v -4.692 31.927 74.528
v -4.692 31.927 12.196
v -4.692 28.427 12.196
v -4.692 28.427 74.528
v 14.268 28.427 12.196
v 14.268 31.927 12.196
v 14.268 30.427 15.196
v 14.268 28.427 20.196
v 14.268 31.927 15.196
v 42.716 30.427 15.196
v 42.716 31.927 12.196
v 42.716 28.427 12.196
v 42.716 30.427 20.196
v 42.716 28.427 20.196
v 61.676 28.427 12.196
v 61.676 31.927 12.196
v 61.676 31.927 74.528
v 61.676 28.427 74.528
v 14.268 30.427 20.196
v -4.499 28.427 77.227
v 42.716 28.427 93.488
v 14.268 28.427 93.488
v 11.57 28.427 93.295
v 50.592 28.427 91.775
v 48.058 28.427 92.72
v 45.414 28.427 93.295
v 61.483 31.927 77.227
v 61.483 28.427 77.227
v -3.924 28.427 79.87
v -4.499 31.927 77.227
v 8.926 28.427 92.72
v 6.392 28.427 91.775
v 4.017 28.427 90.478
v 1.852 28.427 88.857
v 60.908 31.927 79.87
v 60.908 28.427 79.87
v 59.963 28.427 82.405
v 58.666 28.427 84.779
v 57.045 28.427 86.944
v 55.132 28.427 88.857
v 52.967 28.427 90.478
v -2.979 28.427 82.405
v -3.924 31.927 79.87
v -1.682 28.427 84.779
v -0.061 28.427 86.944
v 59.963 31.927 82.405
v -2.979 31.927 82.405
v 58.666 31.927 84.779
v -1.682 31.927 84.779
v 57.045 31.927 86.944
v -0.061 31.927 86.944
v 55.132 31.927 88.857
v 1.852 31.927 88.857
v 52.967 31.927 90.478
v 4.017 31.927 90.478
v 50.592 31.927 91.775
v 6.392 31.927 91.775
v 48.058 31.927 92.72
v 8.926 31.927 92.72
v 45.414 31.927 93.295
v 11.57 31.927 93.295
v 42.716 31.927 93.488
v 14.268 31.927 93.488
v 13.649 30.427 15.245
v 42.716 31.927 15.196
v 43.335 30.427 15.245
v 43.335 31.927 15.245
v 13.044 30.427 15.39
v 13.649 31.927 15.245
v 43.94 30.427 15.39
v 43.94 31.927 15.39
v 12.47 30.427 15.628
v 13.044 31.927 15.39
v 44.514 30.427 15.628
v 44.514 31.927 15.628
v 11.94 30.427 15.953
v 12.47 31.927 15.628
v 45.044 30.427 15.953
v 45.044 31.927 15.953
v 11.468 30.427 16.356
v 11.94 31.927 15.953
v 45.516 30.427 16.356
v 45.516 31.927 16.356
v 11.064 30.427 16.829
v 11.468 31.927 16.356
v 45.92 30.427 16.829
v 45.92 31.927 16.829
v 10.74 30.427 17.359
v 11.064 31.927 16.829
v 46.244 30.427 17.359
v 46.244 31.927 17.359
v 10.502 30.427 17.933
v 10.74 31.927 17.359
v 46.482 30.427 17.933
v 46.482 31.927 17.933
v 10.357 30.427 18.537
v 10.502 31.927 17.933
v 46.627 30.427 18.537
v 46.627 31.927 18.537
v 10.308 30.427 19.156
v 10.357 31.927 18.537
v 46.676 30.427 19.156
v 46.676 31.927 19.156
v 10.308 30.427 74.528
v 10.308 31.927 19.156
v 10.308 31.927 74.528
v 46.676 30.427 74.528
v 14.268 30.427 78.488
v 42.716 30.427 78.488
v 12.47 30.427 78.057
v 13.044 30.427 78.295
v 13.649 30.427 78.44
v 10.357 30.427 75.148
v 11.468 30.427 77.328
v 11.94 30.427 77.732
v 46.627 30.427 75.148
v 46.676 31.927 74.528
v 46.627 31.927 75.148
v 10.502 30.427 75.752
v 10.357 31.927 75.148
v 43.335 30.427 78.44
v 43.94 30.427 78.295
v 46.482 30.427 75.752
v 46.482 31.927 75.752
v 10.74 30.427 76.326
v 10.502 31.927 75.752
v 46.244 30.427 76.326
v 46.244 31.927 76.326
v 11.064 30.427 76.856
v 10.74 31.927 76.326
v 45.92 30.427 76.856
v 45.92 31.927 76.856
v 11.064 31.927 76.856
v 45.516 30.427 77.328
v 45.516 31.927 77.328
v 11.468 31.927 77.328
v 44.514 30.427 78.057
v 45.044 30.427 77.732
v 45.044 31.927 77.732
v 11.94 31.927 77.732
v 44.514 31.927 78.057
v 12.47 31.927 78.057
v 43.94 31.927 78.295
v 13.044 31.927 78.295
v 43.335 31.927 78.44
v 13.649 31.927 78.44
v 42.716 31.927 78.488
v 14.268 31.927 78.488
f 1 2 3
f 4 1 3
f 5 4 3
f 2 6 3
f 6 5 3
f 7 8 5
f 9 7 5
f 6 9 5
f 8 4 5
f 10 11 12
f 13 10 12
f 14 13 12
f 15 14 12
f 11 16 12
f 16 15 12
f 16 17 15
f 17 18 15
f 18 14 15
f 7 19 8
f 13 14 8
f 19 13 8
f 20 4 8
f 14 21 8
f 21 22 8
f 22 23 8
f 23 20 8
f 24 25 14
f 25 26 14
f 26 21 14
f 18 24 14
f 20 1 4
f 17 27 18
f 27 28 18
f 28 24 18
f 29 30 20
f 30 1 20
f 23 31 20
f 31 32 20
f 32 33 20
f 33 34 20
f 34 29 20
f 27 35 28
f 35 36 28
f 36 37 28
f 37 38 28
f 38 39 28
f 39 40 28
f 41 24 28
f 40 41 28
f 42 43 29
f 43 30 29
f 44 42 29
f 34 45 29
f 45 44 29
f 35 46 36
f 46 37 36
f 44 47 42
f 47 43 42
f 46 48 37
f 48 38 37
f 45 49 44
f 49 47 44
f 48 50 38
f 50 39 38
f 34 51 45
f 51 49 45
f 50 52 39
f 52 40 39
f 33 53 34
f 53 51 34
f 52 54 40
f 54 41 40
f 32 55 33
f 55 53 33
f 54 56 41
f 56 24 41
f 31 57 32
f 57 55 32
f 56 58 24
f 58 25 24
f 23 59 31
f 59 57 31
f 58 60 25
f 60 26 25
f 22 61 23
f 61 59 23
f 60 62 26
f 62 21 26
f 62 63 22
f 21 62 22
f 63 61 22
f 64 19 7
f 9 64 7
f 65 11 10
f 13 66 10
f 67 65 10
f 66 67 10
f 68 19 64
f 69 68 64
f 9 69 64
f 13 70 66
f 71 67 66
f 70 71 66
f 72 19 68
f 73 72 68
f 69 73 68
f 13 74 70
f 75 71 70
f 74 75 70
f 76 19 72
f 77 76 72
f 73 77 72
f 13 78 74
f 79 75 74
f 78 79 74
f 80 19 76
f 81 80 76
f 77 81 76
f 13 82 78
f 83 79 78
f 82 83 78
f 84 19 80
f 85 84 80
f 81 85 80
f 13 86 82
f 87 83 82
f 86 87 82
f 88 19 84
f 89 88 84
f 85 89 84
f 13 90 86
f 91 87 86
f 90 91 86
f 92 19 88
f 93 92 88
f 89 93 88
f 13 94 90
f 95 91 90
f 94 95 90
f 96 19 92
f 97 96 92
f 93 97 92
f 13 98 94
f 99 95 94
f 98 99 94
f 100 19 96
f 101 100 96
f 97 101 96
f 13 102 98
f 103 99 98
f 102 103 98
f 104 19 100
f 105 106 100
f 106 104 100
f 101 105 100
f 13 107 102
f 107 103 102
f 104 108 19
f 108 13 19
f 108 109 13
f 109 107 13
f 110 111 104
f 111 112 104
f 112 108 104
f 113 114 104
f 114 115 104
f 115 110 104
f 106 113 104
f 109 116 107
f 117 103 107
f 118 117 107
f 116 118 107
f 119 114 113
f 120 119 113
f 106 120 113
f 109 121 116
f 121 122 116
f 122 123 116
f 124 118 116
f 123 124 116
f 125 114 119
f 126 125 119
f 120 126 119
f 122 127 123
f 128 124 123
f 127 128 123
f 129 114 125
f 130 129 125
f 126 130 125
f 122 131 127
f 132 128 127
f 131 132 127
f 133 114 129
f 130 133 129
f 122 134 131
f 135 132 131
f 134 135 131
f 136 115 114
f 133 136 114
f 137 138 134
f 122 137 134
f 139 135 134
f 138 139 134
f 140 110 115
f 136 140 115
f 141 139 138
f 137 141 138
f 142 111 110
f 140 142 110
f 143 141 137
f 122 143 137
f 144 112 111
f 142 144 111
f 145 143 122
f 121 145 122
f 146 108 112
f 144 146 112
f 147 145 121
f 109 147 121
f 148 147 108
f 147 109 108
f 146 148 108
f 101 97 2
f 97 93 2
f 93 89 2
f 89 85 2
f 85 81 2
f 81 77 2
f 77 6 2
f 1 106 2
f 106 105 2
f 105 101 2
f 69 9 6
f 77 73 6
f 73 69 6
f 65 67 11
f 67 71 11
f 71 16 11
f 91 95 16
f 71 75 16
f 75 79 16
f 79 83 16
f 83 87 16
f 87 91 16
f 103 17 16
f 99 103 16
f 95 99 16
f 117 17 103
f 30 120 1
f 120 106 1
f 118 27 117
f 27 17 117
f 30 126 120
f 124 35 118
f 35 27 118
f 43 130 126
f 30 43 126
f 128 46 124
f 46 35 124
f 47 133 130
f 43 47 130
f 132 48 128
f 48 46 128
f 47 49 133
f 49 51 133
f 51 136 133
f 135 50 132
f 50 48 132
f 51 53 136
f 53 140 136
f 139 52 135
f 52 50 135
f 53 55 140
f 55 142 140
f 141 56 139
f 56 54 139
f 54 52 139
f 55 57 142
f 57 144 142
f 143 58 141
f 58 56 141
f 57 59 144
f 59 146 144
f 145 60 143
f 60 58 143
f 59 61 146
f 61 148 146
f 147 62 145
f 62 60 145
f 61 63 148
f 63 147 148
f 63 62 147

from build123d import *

# Parameters (mm, degrees)
BOSS_EXTRUDE1_DEPTH = 2
BOSS_EXTRUDE4_DEPTH = 1.5
SKETCH4_W           = 18.96
SKETCH4_H           = 3
BOSS_EXTRUDE5_DEPTH = 3.5


with BuildPart() as part:
    # Sketch1 → Boss-Extrude1 (new body)
    with BuildSketch(Plane.XZ.offset(-30.427346286)):
        with BuildLine():
            Line((61.676013052, 15.196320566), (61.676013052, 19.156320566))
            Line((61.676013052, 19.156320566), (61.676013052, 74.528320566))
            ThreePointArc((61.676013052, 74.528320566), (56.122757624, 87.935065137), (42.716013052, 93.488320566))
            Line((42.716013052, 93.488320566), (14.268013052, 93.488320566))
            ThreePointArc((14.268013052, 93.488320566), (0.861268481, 87.935065137), (-4.691986948, 74.528320566))
            Line((-4.691986948, 74.528320566), (-4.691986948, 19.156320566))
            Line((-4.691986948, 19.156320566), (-4.691986948, 15.196320566))
            Line((-4.691986948, 15.196320566), (-4.273831516, 15.196320566))
            Line((-4.273831516, 15.196320566), (14.268013052, 15.196320566))
            Line((14.268013052, 15.196320566), (14.268013052, 20.196320566))
            Line((14.268013052, 20.196320566), (42.716013052, 20.196320566))
            Line((42.716013052, 20.196320566), (42.716013052, 15.196320566))
            Line((42.716013052, 15.196320566), (61.257857621, 15.196320566))
            Line((61.257857621, 15.196320566), (61.676013052, 15.196320566))
        make_face()
    extrude(amount=BOSS_EXTRUDE1_DEPTH)

    # Sketch3 → Boss-Extrude4 (add)
    with BuildSketch(Plane(origin=(0, 30.427346286, 0), x_dir=(1, 0, 0), z_dir=(0, 1, 0))):
        with BuildLine():
            ThreePointArc((46.676013052, -19.156320566), (45.516155906, -16.356177712), (42.716013052, -15.196320566))
            Line((42.716013052, -15.196320566), (61.676013052, -15.196320566))
            Line((61.676013052, -15.196320566), (61.676013052, -74.528320566))
            ThreePointArc((61.676013052, -74.528320566), (56.122757624, -87.935065137), (42.716013052, -93.488320566))
            Line((42.716013052, -93.488320566), (14.268013052, -93.488320566))
            ThreePointArc((14.268013052, -93.488320566), (0.861268481, -87.935065137), (-4.691986948, -74.528320566))
            Line((-4.691986948, -74.528320566), (-4.691986948, -15.196320566))
            Line((-4.691986948, -15.196320566), (14.268013052, -15.196320566))
            ThreePointArc((14.268013052, -15.196320566), (11.467870199, -16.356177712), (10.308013052, -19.156320566))
            Line((10.308013052, -19.156320566), (10.308013052, -74.528320566))
            ThreePointArc((10.308013052, -74.528320566), (11.467870199, -77.328463419), (14.268013052, -78.488320566))
            Line((14.268013052, -78.488320566), (42.716013052, -78.488320566))
            ThreePointArc((42.716013052, -78.488320566), (45.516155906, -77.328463419), (46.676013052, -74.528320566))
            Line((46.676013052, -74.528320566), (46.676013052, -19.156320566))
        make_face()
    extrude(amount=BOSS_EXTRUDE4_DEPTH)

    # Sketch4 → Boss-Extrude5 (add)
    with BuildSketch(Plane.XZ.offset(-28.427346286)):
        with Locations((4.788013052, 13.696320566)):
            Rectangle(SKETCH4_W, SKETCH4_H)
        with Locations((52.196013052, 13.696320566)):
            Rectangle(SKETCH4_W, SKETCH4_H)
    extrude(amount=-BOSS_EXTRUDE5_DEPTH)


solid = part.part
